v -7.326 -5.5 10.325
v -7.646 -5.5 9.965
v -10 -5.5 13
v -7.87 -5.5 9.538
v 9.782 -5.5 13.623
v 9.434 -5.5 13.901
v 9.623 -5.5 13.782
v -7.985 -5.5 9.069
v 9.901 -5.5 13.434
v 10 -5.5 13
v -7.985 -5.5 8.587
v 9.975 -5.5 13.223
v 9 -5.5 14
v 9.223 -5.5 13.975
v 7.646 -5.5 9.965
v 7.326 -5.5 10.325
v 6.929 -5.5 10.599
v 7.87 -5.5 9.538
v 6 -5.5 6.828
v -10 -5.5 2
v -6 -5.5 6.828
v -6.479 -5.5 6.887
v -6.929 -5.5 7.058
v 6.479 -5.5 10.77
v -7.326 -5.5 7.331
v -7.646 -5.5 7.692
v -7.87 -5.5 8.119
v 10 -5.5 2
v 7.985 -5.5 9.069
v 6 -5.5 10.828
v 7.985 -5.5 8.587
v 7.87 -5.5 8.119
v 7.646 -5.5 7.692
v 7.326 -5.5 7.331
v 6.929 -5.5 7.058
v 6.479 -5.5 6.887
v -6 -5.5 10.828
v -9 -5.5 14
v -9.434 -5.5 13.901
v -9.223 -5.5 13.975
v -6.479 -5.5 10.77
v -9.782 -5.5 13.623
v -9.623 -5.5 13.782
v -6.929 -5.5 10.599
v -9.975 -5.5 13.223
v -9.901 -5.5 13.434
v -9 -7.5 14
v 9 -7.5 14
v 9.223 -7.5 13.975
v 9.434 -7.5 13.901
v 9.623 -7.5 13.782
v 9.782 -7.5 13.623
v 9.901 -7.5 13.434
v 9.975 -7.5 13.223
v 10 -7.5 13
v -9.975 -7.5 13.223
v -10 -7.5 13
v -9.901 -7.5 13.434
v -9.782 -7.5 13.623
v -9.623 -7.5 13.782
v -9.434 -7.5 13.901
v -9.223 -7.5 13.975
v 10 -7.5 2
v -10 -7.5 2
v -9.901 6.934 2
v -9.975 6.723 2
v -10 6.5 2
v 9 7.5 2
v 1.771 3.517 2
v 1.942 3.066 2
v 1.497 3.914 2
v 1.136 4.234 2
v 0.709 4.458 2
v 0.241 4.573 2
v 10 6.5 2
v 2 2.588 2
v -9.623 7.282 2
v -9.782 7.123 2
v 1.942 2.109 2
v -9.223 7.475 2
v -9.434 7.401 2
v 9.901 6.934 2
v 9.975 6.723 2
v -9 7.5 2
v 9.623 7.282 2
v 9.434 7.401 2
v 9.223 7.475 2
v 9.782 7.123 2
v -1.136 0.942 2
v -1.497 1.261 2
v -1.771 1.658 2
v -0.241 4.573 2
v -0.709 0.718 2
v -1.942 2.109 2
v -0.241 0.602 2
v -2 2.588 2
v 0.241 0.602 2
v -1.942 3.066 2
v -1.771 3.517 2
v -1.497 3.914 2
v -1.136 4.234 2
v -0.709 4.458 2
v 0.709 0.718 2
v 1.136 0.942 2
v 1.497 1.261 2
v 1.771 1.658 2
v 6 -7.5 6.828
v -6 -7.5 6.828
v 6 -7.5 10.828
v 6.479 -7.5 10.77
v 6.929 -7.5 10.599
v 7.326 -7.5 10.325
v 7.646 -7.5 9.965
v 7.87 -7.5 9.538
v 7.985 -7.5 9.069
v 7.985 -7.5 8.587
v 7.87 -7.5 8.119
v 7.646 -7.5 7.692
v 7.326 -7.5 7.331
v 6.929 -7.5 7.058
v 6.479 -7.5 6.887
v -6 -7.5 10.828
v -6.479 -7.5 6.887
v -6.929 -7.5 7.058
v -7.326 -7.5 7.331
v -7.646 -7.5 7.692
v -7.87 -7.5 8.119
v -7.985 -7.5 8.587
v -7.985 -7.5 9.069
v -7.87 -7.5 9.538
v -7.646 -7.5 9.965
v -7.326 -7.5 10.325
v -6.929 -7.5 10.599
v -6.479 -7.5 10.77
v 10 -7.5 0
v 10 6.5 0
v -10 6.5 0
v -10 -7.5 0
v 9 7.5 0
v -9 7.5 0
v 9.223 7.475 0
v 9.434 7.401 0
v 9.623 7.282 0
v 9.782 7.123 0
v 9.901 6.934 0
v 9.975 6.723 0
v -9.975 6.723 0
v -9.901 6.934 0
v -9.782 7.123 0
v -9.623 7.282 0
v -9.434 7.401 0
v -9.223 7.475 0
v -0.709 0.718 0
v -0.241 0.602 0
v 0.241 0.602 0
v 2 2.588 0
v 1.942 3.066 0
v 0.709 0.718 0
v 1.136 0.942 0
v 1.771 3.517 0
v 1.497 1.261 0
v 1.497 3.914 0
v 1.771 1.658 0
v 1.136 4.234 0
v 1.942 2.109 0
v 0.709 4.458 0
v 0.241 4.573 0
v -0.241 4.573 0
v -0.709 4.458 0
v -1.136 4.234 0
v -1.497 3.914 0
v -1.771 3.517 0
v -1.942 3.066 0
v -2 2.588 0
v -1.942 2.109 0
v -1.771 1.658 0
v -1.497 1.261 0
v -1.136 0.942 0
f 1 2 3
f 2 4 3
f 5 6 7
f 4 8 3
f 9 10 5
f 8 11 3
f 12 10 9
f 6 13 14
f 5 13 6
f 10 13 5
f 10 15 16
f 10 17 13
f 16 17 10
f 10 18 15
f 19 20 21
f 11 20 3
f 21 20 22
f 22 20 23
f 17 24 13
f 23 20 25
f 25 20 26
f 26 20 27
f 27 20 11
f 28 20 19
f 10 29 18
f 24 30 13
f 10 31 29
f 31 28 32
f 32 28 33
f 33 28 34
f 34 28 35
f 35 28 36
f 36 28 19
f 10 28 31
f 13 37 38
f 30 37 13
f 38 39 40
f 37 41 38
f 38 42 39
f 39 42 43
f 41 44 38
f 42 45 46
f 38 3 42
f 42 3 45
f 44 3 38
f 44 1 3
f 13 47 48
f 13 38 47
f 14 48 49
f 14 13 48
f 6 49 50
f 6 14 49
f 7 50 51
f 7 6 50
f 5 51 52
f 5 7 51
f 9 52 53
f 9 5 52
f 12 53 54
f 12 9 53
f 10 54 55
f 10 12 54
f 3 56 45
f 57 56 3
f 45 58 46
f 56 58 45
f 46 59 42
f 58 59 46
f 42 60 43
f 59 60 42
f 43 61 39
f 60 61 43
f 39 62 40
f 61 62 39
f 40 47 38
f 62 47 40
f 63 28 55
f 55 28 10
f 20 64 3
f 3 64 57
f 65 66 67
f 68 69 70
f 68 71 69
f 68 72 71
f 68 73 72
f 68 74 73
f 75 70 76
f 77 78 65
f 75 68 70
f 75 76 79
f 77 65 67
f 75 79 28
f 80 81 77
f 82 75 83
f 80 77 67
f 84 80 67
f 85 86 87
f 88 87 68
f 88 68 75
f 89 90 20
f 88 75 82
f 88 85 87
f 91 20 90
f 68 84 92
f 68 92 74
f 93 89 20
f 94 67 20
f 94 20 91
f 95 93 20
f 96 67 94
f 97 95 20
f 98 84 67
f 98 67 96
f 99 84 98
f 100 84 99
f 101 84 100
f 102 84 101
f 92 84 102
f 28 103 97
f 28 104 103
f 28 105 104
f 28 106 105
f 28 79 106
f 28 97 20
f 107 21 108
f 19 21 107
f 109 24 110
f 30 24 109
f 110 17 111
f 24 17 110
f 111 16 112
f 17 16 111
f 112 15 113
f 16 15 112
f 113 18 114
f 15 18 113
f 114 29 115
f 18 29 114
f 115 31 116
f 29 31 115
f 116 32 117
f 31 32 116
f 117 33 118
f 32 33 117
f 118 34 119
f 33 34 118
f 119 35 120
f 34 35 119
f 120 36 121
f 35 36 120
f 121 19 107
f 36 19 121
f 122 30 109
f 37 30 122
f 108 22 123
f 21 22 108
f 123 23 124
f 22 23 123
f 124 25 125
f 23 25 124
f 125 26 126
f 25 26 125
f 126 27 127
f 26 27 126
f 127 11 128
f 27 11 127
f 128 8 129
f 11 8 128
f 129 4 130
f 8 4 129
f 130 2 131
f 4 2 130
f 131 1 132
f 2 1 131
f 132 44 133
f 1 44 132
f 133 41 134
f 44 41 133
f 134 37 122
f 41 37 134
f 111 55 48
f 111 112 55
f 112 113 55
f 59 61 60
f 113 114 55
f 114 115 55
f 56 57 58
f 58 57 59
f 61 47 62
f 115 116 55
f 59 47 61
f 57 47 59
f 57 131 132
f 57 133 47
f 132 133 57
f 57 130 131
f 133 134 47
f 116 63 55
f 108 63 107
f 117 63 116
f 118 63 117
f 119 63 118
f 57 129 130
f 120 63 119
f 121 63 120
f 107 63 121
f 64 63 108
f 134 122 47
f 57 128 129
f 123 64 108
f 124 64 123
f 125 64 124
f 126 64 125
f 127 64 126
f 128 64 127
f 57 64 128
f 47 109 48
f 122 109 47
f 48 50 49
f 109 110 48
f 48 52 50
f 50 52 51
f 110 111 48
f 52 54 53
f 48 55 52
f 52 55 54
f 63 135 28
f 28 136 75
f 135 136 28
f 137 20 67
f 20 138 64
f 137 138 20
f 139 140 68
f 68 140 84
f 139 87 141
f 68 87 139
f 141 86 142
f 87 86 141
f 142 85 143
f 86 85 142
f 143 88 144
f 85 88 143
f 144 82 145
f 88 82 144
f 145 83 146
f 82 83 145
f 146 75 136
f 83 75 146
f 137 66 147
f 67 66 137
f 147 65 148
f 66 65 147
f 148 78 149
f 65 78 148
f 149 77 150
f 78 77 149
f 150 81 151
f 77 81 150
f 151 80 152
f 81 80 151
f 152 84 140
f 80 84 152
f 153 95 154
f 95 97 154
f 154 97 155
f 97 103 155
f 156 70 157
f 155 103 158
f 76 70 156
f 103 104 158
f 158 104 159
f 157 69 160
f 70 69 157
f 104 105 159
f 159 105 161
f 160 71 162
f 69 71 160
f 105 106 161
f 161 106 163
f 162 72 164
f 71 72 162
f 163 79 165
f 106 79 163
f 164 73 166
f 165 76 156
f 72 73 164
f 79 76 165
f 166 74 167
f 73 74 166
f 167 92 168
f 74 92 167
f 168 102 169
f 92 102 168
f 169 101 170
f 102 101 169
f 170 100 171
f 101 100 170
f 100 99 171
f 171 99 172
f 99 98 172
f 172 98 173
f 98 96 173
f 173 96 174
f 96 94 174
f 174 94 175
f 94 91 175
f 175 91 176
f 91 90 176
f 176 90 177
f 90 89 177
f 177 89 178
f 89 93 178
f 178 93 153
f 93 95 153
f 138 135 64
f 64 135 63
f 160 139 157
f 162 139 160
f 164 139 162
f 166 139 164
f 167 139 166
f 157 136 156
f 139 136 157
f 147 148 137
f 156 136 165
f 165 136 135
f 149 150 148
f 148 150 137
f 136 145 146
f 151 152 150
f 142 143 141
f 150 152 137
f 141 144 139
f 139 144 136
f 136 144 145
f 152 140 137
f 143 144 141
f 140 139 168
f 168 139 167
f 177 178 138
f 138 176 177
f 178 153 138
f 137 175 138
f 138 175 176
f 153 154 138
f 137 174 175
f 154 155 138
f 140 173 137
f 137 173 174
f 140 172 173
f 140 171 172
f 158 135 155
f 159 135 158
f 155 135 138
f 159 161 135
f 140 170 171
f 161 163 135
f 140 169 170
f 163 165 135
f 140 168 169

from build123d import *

# Parameters (mm, degrees)
SKETCH_W        = 20
SKETCH_H        = 15
PAD_DEPTH       = 2
SKETCH001_W     = 20
SKETCH001_H     = 2
PAD001_DEPTH    = 12
POCKET002_DEPTH = 5
COPYSKETCH005_R = 2
POCKET_DEPTH    = 5
FILLET_R        = 1
FILLET001_R     = 1
FILLET002_R     = 1
FILLET003_R     = 1


with BuildPart() as part:
    # Sketch → Pad (new body)
    with BuildSketch(Plane.XY):
        Rectangle(SKETCH_W, SKETCH_H)
    extrude(amount=PAD_DEPTH)

    # Sketch001 (on Face6 of Pad) → Pad001 (join)
    with BuildSketch(Plane.XY.offset(2)):
        with Locations((0, -6.5)):
            Rectangle(SKETCH001_W, SKETCH001_H)
    extrude(amount=PAD001_DEPTH)

    # Sketch004 → Pocket002 (cut)
    with BuildSketch(Plane(origin=(0, -2.5, 0), x_dir=(-1, 0, 0), z_dir=(0, 1, 0))):
        with BuildLine():
            Line((-6, 6.828421), (6, 6.828421))
            ThreePointArc((6, 6.828421), (8, 8.828421), (6, 10.828421))
            Line((6, 10.828421), (-6, 10.828421))
            ThreePointArc((-6, 10.828421), (-8, 8.828421), (-6, 6.828421))
        make_face()
    extrude(amount=-POCKET002_DEPTH, mode=Mode.SUBTRACT)

    # CopySketch005 → Pocket (cut)
    with BuildSketch(Plane.XY.offset(2)):
        with Locations((0, 2.587535)):
            Circle(COPYSKETCH005_R)
    extrude(amount=-POCKET_DEPTH, mode=Mode.SUBTRACT)

    # Fillet
    fillet_edges = [part.edges().sort_by_distance(p)[0] for p in [
        (-10, 7.5, 1),
    ]]
    fillet(fillet_edges, radius=FILLET_R)

    # Fillet001
    fillet001_edges = [part.edges().sort_by_distance(p)[0] for p in [
        (10, 7.5, 1),
    ]]
    fillet(fillet001_edges, radius=FILLET001_R)

    # Fillet002
    fillet002_edges = [part.edges().sort_by_distance(p)[0] for p in [
        (-10, -6.5, 14),
    ]]
    fillet(fillet002_edges, radius=FILLET002_R)

    # Fillet003
    fillet003_edges = [part.edges().sort_by_distance(p)[0] for p in [
        (10, -6.5, 14),
    ]]
    fillet(fillet003_edges, radius=FILLET003_R)


solid = part.part
